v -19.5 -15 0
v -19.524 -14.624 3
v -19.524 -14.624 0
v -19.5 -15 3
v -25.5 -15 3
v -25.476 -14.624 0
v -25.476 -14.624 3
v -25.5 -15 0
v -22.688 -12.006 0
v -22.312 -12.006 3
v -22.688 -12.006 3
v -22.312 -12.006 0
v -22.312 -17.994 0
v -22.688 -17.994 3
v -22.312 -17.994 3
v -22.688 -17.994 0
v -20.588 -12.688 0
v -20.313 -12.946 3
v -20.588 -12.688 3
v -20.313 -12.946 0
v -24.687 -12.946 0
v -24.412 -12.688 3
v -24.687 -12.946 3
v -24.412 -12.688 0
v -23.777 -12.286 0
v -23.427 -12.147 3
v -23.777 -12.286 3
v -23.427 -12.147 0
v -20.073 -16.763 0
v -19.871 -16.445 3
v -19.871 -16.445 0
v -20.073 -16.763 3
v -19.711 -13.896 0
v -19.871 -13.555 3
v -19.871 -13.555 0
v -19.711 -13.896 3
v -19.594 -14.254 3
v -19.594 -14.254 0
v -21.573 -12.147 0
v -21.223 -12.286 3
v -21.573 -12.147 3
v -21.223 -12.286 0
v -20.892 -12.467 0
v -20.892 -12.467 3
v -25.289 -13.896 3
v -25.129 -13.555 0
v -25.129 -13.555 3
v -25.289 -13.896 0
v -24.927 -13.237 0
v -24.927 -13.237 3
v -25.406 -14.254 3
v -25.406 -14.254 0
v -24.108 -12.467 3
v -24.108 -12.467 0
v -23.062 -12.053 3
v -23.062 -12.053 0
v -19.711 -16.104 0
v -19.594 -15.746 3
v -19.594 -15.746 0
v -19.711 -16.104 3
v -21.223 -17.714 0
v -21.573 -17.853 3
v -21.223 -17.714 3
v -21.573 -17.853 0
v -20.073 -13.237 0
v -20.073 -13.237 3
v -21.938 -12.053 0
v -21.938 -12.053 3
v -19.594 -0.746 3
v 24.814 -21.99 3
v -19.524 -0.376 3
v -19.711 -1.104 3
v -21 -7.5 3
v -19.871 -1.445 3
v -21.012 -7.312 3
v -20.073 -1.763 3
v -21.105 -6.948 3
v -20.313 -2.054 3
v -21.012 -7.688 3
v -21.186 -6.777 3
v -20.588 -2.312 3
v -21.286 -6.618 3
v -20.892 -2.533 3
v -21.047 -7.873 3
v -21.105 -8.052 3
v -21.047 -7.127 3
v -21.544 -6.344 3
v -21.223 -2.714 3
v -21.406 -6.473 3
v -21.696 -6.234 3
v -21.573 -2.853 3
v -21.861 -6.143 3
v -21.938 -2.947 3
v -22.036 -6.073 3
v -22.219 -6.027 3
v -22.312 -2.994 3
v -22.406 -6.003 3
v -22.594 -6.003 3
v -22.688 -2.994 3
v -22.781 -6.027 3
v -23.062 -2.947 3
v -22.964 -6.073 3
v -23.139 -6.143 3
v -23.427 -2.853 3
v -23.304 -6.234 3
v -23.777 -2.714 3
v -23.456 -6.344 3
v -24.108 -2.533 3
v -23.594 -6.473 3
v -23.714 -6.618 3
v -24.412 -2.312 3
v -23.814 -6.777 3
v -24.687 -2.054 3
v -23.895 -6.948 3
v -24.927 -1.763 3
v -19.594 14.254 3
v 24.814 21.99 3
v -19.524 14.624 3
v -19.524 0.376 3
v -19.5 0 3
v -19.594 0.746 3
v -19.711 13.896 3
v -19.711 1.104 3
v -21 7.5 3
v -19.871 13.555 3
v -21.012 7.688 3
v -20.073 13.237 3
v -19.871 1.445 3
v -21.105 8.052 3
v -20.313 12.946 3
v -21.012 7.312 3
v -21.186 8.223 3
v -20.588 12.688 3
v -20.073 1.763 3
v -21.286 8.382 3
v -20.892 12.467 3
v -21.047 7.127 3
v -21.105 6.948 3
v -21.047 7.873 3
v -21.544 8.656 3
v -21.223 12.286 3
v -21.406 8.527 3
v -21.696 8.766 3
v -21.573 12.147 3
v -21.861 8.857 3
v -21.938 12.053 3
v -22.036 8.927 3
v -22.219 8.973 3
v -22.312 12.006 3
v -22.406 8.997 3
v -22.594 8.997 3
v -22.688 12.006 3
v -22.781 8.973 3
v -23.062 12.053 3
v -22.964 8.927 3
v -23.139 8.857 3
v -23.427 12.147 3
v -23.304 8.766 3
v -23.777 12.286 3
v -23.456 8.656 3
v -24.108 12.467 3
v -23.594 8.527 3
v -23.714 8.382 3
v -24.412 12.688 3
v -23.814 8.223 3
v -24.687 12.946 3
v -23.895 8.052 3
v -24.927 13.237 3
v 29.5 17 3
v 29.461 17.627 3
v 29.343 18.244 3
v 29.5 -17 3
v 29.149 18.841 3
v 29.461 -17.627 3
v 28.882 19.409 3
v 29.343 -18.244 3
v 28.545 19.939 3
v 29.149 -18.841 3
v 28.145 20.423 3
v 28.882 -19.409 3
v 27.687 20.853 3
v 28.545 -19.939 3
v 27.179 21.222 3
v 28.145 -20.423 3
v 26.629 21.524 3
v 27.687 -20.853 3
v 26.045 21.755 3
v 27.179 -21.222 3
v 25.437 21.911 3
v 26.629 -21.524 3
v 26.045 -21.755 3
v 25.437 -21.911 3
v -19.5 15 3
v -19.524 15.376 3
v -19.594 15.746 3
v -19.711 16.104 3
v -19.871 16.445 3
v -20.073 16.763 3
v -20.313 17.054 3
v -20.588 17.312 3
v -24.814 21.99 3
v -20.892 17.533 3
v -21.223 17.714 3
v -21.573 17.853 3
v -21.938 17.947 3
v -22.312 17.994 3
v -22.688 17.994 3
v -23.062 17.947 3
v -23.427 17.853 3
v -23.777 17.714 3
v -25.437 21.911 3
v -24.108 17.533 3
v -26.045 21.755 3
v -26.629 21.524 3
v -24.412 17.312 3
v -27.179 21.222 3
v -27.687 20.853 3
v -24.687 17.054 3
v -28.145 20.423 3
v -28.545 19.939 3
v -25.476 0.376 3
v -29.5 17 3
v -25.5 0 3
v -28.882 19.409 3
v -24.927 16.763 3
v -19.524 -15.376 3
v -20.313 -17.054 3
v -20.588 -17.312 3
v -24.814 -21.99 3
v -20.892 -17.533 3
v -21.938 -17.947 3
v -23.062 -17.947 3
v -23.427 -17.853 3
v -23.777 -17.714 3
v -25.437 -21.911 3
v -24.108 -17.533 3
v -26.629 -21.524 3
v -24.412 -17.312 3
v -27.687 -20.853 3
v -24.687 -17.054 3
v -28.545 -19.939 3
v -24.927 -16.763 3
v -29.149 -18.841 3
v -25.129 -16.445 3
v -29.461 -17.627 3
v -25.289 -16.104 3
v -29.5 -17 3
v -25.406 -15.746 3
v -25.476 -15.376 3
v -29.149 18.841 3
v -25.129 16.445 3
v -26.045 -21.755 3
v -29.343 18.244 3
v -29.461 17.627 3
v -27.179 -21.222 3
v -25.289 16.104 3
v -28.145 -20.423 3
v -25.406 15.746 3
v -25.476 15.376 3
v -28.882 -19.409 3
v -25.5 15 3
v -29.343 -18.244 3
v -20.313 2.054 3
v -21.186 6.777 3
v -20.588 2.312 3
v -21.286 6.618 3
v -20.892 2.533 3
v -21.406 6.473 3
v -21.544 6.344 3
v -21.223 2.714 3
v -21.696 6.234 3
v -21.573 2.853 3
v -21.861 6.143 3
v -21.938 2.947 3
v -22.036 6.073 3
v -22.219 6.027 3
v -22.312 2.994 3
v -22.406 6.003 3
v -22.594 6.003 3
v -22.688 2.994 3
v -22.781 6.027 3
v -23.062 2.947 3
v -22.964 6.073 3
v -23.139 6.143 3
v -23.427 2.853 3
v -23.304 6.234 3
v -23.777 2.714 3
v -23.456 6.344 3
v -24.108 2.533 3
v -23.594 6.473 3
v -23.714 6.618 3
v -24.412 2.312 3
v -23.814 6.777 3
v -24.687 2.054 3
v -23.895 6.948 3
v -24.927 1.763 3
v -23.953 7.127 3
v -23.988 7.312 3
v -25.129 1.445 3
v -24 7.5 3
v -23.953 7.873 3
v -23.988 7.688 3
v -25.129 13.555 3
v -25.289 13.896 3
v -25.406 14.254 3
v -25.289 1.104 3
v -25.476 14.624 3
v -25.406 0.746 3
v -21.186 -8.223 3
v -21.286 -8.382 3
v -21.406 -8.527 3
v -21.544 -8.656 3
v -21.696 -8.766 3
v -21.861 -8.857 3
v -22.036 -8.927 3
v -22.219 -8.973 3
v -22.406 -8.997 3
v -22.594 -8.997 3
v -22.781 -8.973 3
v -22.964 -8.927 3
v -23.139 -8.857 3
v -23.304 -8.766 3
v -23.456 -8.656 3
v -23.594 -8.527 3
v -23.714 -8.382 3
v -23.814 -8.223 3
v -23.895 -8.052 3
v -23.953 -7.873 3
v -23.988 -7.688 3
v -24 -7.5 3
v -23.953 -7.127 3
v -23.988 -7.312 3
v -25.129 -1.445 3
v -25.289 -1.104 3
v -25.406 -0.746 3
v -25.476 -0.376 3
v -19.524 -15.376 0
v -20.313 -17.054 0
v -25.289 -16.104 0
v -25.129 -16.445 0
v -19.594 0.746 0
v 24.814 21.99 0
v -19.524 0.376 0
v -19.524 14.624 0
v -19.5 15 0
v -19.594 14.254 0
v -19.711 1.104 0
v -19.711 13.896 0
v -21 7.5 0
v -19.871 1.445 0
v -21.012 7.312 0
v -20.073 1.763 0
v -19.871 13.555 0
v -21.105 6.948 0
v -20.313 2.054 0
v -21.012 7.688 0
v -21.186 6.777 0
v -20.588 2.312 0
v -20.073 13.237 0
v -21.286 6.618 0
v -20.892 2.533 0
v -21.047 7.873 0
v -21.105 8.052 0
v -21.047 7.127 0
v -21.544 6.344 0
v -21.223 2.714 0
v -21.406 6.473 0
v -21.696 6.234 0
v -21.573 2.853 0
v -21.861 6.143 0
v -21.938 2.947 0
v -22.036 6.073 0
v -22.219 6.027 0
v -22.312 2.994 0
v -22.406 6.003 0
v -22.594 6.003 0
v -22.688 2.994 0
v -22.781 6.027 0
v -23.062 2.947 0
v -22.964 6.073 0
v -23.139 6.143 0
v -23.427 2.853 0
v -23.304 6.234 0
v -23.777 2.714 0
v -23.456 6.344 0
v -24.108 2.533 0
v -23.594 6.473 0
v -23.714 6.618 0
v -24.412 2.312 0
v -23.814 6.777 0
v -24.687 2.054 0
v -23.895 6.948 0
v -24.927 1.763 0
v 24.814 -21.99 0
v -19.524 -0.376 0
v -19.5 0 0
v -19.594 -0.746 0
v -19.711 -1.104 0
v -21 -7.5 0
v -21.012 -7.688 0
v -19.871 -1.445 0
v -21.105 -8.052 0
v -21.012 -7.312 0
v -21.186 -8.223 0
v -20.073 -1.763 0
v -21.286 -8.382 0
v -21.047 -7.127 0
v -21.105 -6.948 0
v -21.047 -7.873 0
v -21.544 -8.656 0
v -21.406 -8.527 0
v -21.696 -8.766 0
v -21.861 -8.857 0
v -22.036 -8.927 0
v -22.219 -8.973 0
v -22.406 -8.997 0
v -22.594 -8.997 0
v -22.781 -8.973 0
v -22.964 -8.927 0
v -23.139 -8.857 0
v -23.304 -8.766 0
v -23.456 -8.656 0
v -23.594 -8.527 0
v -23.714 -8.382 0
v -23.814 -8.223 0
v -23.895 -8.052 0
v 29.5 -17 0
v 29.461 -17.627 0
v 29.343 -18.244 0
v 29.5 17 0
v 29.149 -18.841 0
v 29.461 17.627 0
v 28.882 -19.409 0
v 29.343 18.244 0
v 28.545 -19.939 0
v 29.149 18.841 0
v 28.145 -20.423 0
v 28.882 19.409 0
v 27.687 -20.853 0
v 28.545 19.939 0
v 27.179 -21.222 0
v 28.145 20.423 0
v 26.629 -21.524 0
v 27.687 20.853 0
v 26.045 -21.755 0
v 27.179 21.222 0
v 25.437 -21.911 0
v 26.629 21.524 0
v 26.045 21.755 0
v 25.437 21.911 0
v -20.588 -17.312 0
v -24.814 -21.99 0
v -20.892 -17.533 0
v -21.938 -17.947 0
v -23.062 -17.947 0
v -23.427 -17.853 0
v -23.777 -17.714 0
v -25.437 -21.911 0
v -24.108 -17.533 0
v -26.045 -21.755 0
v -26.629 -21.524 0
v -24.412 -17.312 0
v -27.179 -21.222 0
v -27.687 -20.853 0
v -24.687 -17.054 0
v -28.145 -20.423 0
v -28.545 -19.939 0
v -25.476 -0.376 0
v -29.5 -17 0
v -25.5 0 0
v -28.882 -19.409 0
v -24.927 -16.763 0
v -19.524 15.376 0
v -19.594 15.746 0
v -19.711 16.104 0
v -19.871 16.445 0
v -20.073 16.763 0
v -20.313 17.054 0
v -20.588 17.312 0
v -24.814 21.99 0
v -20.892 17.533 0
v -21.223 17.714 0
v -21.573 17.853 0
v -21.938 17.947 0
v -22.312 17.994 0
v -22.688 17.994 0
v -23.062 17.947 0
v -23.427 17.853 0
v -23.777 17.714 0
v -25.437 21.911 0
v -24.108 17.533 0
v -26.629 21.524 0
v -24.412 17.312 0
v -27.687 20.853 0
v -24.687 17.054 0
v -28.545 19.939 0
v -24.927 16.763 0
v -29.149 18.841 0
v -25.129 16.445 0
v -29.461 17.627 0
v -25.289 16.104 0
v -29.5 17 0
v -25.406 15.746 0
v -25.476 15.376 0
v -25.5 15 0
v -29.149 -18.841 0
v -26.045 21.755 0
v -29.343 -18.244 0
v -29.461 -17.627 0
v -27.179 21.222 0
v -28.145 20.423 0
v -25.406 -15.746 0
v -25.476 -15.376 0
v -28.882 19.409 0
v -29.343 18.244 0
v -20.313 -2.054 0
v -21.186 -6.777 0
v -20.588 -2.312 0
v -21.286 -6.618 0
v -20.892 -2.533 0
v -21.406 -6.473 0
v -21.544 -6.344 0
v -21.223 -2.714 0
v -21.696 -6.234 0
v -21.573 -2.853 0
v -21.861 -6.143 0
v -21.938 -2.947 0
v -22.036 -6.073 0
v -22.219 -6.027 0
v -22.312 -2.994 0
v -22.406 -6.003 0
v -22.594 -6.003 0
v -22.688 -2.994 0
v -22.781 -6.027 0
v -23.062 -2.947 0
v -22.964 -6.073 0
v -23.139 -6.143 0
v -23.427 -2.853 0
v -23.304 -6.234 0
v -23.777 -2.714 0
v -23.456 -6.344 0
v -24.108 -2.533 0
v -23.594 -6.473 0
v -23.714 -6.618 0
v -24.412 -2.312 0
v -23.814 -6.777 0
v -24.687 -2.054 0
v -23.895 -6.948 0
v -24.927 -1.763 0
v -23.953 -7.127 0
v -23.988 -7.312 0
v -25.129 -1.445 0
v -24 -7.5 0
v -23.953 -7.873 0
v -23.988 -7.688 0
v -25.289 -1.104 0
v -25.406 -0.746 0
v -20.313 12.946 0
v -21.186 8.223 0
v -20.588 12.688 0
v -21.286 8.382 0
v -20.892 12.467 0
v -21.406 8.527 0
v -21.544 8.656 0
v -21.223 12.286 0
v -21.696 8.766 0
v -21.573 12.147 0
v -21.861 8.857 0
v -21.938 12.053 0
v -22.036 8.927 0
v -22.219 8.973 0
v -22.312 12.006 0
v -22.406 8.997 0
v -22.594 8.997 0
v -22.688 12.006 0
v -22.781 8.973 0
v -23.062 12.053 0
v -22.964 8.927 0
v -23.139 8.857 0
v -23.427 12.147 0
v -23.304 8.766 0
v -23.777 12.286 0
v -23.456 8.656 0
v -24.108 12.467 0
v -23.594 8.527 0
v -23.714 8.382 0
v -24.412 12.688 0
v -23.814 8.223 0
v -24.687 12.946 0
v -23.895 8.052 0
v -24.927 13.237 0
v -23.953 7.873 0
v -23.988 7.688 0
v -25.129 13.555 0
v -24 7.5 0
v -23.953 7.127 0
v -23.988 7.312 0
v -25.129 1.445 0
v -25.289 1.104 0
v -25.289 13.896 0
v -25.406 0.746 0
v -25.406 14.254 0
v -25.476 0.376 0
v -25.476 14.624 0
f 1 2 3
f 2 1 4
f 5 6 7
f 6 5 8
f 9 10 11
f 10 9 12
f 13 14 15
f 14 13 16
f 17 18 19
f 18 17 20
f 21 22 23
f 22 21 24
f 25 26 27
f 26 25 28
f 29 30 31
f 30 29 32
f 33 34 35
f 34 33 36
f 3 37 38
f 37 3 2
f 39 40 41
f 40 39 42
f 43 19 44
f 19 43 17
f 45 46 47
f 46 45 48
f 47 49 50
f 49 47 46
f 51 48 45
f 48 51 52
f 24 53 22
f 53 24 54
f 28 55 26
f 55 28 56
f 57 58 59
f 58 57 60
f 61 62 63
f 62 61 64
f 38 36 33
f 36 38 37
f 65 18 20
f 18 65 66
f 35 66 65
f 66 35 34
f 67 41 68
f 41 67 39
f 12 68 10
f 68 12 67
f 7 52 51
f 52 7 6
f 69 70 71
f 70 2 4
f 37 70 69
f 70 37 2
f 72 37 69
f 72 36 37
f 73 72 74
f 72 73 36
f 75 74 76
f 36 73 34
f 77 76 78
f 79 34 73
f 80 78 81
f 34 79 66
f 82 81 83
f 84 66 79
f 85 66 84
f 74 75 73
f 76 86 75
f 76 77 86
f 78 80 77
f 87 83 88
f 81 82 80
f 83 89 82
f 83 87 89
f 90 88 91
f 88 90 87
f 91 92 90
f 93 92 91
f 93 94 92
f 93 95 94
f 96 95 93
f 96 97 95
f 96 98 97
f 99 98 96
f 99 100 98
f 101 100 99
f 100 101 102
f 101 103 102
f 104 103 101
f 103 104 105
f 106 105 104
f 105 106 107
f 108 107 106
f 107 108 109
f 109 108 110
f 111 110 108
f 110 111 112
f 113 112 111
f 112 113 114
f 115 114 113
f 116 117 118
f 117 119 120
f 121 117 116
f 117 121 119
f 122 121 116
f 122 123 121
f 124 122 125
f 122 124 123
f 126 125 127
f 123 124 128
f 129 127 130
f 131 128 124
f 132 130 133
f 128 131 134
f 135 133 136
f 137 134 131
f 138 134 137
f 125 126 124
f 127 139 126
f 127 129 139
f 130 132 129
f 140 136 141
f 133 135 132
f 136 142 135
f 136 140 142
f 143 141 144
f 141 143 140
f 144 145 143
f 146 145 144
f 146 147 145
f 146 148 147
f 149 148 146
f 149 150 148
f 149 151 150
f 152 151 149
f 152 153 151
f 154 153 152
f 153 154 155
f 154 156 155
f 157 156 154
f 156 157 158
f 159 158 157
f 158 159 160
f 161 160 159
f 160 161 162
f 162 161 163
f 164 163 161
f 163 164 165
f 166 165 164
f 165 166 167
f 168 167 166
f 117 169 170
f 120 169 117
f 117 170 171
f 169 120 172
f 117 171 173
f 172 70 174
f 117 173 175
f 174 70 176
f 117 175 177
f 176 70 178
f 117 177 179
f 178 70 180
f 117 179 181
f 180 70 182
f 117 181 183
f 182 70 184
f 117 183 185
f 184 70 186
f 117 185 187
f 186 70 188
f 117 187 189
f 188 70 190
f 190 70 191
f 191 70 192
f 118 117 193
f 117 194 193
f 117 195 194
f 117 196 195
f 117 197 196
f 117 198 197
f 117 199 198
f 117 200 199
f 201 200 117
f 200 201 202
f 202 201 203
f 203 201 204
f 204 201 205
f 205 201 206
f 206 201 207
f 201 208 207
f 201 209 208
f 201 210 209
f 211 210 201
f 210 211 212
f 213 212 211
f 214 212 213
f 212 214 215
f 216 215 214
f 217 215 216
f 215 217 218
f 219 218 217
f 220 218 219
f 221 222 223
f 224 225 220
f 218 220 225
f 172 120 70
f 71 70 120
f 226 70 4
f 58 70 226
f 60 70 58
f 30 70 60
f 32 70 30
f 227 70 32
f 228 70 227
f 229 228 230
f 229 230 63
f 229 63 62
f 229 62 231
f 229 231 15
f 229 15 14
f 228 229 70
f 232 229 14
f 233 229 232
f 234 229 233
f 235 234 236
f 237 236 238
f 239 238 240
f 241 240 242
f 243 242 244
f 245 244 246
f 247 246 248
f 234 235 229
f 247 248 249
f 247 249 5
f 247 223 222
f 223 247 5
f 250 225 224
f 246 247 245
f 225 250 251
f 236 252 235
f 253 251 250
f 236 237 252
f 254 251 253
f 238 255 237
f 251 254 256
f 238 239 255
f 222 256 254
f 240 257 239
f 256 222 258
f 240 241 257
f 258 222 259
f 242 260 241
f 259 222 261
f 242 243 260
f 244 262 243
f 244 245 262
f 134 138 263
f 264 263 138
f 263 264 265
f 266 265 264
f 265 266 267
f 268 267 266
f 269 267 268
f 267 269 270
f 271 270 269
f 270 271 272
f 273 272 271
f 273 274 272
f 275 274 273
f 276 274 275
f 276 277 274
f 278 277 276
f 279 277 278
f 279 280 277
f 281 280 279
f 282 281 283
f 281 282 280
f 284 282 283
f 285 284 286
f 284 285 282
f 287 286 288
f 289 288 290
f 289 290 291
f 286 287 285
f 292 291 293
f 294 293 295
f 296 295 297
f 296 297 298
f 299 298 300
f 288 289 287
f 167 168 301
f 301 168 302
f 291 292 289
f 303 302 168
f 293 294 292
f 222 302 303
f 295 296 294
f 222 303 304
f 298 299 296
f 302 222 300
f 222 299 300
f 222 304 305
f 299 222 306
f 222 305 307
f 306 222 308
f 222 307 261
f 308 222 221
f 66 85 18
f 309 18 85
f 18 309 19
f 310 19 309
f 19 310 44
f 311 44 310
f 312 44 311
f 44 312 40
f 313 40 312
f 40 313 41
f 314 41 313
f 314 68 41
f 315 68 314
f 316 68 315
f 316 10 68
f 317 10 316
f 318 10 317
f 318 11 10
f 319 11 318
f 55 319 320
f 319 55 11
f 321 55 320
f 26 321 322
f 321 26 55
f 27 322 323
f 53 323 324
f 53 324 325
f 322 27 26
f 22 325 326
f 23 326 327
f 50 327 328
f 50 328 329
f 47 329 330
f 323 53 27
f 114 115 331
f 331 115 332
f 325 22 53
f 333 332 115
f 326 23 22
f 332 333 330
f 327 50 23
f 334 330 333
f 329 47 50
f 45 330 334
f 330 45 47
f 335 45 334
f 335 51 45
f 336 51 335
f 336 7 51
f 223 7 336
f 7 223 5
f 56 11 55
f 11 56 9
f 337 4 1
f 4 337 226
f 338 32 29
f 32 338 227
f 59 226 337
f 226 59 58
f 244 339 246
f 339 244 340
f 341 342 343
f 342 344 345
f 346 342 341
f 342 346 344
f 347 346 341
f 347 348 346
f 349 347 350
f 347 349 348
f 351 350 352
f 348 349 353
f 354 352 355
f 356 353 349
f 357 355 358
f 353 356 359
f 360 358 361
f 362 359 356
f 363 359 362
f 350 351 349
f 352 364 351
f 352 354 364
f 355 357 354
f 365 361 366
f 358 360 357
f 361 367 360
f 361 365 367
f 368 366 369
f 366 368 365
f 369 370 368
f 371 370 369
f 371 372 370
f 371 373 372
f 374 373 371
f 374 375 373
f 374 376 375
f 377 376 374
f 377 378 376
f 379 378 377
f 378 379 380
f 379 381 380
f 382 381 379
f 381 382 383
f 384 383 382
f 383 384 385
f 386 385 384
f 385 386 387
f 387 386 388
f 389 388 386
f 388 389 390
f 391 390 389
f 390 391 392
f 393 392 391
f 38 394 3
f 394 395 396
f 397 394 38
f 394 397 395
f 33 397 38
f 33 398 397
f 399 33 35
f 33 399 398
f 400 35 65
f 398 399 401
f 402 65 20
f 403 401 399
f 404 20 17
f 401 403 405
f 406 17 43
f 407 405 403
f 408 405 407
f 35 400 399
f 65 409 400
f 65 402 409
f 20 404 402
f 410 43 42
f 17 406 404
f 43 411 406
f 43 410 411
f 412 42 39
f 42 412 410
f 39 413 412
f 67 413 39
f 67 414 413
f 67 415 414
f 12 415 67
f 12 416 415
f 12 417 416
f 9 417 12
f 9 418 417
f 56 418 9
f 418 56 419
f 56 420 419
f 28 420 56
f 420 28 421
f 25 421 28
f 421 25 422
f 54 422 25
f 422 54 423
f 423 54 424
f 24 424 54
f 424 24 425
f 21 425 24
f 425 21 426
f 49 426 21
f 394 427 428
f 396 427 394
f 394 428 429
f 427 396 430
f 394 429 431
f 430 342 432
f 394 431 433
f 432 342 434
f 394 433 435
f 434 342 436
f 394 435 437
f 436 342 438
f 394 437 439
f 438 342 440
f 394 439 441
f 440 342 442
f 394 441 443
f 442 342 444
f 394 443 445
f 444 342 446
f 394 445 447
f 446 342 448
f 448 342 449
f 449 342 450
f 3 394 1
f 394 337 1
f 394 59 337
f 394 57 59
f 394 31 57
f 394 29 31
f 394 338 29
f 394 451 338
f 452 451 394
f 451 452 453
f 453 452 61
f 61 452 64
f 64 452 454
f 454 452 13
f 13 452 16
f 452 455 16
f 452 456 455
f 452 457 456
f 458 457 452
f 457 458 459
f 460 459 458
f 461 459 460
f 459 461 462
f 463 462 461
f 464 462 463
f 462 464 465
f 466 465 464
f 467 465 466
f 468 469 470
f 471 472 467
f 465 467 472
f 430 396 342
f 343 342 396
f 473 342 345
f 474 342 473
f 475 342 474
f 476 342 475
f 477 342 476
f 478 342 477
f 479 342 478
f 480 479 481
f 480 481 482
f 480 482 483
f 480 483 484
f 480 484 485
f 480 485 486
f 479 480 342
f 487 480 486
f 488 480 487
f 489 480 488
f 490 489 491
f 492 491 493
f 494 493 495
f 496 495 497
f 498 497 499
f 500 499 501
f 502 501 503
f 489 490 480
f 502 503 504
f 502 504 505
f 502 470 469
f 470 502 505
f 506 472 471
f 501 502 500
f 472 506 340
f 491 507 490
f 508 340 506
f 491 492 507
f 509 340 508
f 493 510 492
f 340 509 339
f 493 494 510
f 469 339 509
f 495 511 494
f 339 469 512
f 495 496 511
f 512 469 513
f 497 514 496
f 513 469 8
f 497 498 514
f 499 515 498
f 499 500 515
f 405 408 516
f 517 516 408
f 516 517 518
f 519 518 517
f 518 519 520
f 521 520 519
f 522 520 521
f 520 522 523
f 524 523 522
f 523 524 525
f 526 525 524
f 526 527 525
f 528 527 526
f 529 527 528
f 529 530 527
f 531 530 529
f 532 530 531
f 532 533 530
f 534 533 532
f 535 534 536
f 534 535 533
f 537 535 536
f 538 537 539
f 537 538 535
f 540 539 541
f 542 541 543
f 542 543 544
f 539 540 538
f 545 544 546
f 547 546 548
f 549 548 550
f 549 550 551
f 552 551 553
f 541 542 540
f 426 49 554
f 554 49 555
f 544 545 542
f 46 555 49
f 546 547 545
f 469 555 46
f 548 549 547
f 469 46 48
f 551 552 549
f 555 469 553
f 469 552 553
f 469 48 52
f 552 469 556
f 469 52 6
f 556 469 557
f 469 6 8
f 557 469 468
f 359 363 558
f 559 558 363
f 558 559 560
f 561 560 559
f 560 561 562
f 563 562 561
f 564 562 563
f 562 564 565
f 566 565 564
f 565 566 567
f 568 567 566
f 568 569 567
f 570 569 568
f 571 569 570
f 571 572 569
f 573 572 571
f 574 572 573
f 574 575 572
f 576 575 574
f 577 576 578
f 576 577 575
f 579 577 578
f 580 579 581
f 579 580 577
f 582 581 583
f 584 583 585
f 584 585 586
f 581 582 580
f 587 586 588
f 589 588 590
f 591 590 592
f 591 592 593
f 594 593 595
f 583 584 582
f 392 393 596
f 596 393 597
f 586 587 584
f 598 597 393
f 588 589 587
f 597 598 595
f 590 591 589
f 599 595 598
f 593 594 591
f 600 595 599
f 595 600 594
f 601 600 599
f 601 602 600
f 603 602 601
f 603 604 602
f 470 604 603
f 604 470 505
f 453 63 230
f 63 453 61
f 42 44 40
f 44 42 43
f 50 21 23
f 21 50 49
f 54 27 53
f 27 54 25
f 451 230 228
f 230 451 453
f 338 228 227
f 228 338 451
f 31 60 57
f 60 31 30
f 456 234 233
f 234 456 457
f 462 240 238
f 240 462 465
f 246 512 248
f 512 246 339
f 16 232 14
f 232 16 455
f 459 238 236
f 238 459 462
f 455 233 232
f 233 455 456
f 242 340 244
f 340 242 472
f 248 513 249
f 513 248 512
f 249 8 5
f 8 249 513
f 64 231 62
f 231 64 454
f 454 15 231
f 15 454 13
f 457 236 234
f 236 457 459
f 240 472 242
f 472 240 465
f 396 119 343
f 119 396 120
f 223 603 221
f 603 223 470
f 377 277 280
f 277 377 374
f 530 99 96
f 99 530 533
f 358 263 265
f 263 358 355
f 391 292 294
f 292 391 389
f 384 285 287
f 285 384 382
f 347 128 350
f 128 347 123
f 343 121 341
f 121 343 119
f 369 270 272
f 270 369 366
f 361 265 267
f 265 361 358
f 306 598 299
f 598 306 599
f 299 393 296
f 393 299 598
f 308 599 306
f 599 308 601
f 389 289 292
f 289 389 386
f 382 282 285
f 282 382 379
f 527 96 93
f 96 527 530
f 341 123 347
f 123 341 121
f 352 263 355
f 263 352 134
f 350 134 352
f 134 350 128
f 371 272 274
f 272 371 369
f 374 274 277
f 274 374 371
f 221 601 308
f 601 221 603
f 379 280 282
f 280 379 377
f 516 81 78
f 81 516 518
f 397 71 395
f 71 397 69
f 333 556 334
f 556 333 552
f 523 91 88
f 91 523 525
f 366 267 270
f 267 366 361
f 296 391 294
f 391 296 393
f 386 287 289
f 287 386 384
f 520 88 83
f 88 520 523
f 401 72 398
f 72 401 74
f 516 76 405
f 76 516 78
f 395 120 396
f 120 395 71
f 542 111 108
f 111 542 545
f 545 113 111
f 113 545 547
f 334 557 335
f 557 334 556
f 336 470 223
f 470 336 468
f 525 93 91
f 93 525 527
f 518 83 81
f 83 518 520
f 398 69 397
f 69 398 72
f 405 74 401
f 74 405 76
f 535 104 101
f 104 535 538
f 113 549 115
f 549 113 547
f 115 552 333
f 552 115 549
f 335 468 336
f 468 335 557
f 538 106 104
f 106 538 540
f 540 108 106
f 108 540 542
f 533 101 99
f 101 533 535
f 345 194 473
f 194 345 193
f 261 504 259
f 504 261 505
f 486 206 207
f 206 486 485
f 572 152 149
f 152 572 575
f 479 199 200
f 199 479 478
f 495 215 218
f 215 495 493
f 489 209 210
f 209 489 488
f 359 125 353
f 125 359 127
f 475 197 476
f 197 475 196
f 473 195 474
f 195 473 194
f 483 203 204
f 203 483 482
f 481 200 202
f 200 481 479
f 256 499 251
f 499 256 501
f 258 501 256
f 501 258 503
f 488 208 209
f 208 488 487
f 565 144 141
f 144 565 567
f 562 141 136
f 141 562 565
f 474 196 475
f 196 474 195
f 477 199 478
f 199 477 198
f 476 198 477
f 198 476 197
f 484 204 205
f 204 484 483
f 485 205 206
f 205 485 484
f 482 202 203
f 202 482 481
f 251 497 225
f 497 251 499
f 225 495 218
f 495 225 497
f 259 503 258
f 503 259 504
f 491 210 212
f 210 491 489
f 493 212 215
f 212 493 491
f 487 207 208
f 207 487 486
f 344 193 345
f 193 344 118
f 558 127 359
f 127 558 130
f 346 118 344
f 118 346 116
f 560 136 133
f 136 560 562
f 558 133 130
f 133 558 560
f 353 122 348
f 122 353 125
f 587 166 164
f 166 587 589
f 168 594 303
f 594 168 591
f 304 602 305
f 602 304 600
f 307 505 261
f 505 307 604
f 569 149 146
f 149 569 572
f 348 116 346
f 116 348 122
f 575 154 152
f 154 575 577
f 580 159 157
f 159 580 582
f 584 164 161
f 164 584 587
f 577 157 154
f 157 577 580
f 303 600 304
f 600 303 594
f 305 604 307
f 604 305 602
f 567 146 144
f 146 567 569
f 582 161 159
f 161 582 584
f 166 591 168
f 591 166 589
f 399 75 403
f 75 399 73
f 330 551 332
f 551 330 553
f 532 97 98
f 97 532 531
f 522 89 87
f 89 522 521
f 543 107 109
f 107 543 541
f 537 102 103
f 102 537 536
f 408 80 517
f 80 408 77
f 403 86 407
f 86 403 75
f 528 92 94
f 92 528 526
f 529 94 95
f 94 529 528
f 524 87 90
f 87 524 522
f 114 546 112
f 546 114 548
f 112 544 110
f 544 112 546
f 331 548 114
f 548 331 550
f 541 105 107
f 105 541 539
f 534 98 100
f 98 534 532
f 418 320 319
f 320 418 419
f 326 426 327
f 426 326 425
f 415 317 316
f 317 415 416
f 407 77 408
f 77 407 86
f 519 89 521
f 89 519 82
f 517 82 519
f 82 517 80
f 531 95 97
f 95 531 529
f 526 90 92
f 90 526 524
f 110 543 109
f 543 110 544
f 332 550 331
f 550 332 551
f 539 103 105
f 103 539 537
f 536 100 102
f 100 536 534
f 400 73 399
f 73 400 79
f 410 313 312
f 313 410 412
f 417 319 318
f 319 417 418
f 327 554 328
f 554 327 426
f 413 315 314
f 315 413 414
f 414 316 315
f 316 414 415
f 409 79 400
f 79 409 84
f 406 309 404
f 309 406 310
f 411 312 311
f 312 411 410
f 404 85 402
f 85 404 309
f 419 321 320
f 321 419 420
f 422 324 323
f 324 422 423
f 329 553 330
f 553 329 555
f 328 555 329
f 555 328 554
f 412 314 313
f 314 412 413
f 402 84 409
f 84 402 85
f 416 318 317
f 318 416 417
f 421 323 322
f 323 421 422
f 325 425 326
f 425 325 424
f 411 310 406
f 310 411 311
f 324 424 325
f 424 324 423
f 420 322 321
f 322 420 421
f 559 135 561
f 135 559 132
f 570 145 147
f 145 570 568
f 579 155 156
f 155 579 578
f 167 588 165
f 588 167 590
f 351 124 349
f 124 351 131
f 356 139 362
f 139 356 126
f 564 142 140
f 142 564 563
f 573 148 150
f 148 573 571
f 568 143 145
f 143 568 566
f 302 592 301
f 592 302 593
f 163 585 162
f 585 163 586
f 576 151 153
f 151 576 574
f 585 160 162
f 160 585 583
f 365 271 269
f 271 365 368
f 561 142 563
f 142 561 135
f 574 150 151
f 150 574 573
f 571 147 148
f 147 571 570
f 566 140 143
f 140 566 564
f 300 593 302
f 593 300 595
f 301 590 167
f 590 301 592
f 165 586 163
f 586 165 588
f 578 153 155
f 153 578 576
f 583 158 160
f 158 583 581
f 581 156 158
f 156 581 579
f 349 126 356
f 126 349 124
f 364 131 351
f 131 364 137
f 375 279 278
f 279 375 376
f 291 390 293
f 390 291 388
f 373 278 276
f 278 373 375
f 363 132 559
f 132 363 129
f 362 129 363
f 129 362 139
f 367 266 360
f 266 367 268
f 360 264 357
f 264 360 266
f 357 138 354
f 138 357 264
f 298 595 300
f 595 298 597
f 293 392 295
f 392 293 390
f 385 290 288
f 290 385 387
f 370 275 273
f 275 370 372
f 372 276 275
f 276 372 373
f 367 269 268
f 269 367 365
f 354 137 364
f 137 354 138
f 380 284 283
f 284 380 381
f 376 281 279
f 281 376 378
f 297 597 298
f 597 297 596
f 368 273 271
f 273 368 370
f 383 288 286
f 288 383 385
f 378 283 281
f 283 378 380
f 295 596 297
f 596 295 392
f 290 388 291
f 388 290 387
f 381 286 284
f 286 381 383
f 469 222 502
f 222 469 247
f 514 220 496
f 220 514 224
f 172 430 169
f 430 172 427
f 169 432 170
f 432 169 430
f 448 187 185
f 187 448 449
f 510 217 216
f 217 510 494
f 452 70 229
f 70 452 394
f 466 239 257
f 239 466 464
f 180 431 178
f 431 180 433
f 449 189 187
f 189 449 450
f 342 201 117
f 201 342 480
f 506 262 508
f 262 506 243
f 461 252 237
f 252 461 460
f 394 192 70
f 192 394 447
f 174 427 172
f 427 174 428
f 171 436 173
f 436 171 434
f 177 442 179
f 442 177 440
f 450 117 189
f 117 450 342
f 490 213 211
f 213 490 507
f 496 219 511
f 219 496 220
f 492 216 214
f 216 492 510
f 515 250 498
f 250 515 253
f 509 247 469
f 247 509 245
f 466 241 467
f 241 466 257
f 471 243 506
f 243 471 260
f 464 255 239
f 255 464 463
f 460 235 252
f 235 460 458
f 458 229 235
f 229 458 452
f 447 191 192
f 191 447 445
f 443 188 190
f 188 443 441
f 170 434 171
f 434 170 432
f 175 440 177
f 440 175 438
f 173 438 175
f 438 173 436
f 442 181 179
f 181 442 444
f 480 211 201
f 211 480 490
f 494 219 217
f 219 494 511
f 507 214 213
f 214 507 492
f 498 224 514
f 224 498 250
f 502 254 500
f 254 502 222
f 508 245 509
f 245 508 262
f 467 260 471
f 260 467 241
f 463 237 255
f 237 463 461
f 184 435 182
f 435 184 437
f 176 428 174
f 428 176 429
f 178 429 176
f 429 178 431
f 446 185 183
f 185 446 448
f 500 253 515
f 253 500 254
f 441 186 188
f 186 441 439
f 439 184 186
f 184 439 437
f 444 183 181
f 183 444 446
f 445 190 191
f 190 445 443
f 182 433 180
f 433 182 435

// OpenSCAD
$fn = 50;


difference() {
	union() {
		hull() {
			translate(v = [-24.5000000000, 17.0000000000, 0]) {
				cylinder(h = 3, r = 5);
			}
			translate(v = [24.5000000000, 17.0000000000, 0]) {
				cylinder(h = 3, r = 5);
			}
			translate(v = [-24.5000000000, -17.0000000000, 0]) {
				cylinder(h = 3, r = 5);
			}
			translate(v = [24.5000000000, -17.0000000000, 0]) {
				cylinder(h = 3, r = 5);
			}
		}
	}
	union() {
		translate(v = [-22.5000000000, -15.0000000000, 0]) {
			cylinder(h = 3, r = 3.0000000000);
		}
		translate(v = [-22.5000000000, 0.0000000000, 0]) {
			cylinder(h = 3, r = 3.0000000000);
		}
		translate(v = [-22.5000000000, 15.0000000000, 0]) {
			cylinder(h = 3, r = 3.0000000000);
		}
		translate(v = [-22.5000000000, -15.0000000000, 0]) {
			cylinder(h = 3, r = 1.5000000000);
		}
		translate(v = [-22.5000000000, -7.5000000000, 0]) {
			cylinder(h = 3, r = 1.5000000000);
		}
		translate(v = [-22.5000000000, 0.0000000000, 0]) {
			cylinder(h = 3, r = 1.5000000000);
		}
		translate(v = [-22.5000000000, 7.5000000000, 0]) {
			cylinder(h = 3, r = 1.5000000000);
		}
		translate(v = [-22.5000000000, 15.0000000000, 0]) {
			cylinder(h = 3, r = 1.5000000000);
		}
		translate(v = [-22.5000000000, -15.0000000000, 0]) {
			cylinder(h = 3, r = 1.5000000000);
		}
		translate(v = [-22.5000000000, -7.5000000000, 0]) {
			cylinder(h = 3, r = 1.5000000000);
		}
		translate(v = [-22.5000000000, 0.0000000000, 0]) {
			cylinder(h = 3, r = 1.5000000000);
		}
		translate(v = [-22.5000000000, 7.5000000000, 0]) {
			cylinder(h = 3, r = 1.5000000000);
		}
		translate(v = [-22.5000000000, 15.0000000000, 0]) {
			cylinder(h = 3, r = 1.5000000000);
		}
		translate(v = [-22.5000000000, -15.0000000000, 0]) {
			cylinder(h = 3, r = 1.5000000000);
		}
		translate(v = [-22.5000000000, -7.5000000000, 0]) {
			cylinder(h = 3, r = 1.5000000000);
		}
		translate(v = [-22.5000000000, 0.0000000000, 0]) {
			cylinder(h = 3, r = 1.5000000000);
		}
		translate(v = [-22.5000000000, 7.5000000000, 0]) {
			cylinder(h = 3, r = 1.5000000000);
		}
		translate(v = [-22.5000000000, 15.0000000000, 0]) {
			cylinder(h = 3, r = 1.5000000000);
		}
	}
}
